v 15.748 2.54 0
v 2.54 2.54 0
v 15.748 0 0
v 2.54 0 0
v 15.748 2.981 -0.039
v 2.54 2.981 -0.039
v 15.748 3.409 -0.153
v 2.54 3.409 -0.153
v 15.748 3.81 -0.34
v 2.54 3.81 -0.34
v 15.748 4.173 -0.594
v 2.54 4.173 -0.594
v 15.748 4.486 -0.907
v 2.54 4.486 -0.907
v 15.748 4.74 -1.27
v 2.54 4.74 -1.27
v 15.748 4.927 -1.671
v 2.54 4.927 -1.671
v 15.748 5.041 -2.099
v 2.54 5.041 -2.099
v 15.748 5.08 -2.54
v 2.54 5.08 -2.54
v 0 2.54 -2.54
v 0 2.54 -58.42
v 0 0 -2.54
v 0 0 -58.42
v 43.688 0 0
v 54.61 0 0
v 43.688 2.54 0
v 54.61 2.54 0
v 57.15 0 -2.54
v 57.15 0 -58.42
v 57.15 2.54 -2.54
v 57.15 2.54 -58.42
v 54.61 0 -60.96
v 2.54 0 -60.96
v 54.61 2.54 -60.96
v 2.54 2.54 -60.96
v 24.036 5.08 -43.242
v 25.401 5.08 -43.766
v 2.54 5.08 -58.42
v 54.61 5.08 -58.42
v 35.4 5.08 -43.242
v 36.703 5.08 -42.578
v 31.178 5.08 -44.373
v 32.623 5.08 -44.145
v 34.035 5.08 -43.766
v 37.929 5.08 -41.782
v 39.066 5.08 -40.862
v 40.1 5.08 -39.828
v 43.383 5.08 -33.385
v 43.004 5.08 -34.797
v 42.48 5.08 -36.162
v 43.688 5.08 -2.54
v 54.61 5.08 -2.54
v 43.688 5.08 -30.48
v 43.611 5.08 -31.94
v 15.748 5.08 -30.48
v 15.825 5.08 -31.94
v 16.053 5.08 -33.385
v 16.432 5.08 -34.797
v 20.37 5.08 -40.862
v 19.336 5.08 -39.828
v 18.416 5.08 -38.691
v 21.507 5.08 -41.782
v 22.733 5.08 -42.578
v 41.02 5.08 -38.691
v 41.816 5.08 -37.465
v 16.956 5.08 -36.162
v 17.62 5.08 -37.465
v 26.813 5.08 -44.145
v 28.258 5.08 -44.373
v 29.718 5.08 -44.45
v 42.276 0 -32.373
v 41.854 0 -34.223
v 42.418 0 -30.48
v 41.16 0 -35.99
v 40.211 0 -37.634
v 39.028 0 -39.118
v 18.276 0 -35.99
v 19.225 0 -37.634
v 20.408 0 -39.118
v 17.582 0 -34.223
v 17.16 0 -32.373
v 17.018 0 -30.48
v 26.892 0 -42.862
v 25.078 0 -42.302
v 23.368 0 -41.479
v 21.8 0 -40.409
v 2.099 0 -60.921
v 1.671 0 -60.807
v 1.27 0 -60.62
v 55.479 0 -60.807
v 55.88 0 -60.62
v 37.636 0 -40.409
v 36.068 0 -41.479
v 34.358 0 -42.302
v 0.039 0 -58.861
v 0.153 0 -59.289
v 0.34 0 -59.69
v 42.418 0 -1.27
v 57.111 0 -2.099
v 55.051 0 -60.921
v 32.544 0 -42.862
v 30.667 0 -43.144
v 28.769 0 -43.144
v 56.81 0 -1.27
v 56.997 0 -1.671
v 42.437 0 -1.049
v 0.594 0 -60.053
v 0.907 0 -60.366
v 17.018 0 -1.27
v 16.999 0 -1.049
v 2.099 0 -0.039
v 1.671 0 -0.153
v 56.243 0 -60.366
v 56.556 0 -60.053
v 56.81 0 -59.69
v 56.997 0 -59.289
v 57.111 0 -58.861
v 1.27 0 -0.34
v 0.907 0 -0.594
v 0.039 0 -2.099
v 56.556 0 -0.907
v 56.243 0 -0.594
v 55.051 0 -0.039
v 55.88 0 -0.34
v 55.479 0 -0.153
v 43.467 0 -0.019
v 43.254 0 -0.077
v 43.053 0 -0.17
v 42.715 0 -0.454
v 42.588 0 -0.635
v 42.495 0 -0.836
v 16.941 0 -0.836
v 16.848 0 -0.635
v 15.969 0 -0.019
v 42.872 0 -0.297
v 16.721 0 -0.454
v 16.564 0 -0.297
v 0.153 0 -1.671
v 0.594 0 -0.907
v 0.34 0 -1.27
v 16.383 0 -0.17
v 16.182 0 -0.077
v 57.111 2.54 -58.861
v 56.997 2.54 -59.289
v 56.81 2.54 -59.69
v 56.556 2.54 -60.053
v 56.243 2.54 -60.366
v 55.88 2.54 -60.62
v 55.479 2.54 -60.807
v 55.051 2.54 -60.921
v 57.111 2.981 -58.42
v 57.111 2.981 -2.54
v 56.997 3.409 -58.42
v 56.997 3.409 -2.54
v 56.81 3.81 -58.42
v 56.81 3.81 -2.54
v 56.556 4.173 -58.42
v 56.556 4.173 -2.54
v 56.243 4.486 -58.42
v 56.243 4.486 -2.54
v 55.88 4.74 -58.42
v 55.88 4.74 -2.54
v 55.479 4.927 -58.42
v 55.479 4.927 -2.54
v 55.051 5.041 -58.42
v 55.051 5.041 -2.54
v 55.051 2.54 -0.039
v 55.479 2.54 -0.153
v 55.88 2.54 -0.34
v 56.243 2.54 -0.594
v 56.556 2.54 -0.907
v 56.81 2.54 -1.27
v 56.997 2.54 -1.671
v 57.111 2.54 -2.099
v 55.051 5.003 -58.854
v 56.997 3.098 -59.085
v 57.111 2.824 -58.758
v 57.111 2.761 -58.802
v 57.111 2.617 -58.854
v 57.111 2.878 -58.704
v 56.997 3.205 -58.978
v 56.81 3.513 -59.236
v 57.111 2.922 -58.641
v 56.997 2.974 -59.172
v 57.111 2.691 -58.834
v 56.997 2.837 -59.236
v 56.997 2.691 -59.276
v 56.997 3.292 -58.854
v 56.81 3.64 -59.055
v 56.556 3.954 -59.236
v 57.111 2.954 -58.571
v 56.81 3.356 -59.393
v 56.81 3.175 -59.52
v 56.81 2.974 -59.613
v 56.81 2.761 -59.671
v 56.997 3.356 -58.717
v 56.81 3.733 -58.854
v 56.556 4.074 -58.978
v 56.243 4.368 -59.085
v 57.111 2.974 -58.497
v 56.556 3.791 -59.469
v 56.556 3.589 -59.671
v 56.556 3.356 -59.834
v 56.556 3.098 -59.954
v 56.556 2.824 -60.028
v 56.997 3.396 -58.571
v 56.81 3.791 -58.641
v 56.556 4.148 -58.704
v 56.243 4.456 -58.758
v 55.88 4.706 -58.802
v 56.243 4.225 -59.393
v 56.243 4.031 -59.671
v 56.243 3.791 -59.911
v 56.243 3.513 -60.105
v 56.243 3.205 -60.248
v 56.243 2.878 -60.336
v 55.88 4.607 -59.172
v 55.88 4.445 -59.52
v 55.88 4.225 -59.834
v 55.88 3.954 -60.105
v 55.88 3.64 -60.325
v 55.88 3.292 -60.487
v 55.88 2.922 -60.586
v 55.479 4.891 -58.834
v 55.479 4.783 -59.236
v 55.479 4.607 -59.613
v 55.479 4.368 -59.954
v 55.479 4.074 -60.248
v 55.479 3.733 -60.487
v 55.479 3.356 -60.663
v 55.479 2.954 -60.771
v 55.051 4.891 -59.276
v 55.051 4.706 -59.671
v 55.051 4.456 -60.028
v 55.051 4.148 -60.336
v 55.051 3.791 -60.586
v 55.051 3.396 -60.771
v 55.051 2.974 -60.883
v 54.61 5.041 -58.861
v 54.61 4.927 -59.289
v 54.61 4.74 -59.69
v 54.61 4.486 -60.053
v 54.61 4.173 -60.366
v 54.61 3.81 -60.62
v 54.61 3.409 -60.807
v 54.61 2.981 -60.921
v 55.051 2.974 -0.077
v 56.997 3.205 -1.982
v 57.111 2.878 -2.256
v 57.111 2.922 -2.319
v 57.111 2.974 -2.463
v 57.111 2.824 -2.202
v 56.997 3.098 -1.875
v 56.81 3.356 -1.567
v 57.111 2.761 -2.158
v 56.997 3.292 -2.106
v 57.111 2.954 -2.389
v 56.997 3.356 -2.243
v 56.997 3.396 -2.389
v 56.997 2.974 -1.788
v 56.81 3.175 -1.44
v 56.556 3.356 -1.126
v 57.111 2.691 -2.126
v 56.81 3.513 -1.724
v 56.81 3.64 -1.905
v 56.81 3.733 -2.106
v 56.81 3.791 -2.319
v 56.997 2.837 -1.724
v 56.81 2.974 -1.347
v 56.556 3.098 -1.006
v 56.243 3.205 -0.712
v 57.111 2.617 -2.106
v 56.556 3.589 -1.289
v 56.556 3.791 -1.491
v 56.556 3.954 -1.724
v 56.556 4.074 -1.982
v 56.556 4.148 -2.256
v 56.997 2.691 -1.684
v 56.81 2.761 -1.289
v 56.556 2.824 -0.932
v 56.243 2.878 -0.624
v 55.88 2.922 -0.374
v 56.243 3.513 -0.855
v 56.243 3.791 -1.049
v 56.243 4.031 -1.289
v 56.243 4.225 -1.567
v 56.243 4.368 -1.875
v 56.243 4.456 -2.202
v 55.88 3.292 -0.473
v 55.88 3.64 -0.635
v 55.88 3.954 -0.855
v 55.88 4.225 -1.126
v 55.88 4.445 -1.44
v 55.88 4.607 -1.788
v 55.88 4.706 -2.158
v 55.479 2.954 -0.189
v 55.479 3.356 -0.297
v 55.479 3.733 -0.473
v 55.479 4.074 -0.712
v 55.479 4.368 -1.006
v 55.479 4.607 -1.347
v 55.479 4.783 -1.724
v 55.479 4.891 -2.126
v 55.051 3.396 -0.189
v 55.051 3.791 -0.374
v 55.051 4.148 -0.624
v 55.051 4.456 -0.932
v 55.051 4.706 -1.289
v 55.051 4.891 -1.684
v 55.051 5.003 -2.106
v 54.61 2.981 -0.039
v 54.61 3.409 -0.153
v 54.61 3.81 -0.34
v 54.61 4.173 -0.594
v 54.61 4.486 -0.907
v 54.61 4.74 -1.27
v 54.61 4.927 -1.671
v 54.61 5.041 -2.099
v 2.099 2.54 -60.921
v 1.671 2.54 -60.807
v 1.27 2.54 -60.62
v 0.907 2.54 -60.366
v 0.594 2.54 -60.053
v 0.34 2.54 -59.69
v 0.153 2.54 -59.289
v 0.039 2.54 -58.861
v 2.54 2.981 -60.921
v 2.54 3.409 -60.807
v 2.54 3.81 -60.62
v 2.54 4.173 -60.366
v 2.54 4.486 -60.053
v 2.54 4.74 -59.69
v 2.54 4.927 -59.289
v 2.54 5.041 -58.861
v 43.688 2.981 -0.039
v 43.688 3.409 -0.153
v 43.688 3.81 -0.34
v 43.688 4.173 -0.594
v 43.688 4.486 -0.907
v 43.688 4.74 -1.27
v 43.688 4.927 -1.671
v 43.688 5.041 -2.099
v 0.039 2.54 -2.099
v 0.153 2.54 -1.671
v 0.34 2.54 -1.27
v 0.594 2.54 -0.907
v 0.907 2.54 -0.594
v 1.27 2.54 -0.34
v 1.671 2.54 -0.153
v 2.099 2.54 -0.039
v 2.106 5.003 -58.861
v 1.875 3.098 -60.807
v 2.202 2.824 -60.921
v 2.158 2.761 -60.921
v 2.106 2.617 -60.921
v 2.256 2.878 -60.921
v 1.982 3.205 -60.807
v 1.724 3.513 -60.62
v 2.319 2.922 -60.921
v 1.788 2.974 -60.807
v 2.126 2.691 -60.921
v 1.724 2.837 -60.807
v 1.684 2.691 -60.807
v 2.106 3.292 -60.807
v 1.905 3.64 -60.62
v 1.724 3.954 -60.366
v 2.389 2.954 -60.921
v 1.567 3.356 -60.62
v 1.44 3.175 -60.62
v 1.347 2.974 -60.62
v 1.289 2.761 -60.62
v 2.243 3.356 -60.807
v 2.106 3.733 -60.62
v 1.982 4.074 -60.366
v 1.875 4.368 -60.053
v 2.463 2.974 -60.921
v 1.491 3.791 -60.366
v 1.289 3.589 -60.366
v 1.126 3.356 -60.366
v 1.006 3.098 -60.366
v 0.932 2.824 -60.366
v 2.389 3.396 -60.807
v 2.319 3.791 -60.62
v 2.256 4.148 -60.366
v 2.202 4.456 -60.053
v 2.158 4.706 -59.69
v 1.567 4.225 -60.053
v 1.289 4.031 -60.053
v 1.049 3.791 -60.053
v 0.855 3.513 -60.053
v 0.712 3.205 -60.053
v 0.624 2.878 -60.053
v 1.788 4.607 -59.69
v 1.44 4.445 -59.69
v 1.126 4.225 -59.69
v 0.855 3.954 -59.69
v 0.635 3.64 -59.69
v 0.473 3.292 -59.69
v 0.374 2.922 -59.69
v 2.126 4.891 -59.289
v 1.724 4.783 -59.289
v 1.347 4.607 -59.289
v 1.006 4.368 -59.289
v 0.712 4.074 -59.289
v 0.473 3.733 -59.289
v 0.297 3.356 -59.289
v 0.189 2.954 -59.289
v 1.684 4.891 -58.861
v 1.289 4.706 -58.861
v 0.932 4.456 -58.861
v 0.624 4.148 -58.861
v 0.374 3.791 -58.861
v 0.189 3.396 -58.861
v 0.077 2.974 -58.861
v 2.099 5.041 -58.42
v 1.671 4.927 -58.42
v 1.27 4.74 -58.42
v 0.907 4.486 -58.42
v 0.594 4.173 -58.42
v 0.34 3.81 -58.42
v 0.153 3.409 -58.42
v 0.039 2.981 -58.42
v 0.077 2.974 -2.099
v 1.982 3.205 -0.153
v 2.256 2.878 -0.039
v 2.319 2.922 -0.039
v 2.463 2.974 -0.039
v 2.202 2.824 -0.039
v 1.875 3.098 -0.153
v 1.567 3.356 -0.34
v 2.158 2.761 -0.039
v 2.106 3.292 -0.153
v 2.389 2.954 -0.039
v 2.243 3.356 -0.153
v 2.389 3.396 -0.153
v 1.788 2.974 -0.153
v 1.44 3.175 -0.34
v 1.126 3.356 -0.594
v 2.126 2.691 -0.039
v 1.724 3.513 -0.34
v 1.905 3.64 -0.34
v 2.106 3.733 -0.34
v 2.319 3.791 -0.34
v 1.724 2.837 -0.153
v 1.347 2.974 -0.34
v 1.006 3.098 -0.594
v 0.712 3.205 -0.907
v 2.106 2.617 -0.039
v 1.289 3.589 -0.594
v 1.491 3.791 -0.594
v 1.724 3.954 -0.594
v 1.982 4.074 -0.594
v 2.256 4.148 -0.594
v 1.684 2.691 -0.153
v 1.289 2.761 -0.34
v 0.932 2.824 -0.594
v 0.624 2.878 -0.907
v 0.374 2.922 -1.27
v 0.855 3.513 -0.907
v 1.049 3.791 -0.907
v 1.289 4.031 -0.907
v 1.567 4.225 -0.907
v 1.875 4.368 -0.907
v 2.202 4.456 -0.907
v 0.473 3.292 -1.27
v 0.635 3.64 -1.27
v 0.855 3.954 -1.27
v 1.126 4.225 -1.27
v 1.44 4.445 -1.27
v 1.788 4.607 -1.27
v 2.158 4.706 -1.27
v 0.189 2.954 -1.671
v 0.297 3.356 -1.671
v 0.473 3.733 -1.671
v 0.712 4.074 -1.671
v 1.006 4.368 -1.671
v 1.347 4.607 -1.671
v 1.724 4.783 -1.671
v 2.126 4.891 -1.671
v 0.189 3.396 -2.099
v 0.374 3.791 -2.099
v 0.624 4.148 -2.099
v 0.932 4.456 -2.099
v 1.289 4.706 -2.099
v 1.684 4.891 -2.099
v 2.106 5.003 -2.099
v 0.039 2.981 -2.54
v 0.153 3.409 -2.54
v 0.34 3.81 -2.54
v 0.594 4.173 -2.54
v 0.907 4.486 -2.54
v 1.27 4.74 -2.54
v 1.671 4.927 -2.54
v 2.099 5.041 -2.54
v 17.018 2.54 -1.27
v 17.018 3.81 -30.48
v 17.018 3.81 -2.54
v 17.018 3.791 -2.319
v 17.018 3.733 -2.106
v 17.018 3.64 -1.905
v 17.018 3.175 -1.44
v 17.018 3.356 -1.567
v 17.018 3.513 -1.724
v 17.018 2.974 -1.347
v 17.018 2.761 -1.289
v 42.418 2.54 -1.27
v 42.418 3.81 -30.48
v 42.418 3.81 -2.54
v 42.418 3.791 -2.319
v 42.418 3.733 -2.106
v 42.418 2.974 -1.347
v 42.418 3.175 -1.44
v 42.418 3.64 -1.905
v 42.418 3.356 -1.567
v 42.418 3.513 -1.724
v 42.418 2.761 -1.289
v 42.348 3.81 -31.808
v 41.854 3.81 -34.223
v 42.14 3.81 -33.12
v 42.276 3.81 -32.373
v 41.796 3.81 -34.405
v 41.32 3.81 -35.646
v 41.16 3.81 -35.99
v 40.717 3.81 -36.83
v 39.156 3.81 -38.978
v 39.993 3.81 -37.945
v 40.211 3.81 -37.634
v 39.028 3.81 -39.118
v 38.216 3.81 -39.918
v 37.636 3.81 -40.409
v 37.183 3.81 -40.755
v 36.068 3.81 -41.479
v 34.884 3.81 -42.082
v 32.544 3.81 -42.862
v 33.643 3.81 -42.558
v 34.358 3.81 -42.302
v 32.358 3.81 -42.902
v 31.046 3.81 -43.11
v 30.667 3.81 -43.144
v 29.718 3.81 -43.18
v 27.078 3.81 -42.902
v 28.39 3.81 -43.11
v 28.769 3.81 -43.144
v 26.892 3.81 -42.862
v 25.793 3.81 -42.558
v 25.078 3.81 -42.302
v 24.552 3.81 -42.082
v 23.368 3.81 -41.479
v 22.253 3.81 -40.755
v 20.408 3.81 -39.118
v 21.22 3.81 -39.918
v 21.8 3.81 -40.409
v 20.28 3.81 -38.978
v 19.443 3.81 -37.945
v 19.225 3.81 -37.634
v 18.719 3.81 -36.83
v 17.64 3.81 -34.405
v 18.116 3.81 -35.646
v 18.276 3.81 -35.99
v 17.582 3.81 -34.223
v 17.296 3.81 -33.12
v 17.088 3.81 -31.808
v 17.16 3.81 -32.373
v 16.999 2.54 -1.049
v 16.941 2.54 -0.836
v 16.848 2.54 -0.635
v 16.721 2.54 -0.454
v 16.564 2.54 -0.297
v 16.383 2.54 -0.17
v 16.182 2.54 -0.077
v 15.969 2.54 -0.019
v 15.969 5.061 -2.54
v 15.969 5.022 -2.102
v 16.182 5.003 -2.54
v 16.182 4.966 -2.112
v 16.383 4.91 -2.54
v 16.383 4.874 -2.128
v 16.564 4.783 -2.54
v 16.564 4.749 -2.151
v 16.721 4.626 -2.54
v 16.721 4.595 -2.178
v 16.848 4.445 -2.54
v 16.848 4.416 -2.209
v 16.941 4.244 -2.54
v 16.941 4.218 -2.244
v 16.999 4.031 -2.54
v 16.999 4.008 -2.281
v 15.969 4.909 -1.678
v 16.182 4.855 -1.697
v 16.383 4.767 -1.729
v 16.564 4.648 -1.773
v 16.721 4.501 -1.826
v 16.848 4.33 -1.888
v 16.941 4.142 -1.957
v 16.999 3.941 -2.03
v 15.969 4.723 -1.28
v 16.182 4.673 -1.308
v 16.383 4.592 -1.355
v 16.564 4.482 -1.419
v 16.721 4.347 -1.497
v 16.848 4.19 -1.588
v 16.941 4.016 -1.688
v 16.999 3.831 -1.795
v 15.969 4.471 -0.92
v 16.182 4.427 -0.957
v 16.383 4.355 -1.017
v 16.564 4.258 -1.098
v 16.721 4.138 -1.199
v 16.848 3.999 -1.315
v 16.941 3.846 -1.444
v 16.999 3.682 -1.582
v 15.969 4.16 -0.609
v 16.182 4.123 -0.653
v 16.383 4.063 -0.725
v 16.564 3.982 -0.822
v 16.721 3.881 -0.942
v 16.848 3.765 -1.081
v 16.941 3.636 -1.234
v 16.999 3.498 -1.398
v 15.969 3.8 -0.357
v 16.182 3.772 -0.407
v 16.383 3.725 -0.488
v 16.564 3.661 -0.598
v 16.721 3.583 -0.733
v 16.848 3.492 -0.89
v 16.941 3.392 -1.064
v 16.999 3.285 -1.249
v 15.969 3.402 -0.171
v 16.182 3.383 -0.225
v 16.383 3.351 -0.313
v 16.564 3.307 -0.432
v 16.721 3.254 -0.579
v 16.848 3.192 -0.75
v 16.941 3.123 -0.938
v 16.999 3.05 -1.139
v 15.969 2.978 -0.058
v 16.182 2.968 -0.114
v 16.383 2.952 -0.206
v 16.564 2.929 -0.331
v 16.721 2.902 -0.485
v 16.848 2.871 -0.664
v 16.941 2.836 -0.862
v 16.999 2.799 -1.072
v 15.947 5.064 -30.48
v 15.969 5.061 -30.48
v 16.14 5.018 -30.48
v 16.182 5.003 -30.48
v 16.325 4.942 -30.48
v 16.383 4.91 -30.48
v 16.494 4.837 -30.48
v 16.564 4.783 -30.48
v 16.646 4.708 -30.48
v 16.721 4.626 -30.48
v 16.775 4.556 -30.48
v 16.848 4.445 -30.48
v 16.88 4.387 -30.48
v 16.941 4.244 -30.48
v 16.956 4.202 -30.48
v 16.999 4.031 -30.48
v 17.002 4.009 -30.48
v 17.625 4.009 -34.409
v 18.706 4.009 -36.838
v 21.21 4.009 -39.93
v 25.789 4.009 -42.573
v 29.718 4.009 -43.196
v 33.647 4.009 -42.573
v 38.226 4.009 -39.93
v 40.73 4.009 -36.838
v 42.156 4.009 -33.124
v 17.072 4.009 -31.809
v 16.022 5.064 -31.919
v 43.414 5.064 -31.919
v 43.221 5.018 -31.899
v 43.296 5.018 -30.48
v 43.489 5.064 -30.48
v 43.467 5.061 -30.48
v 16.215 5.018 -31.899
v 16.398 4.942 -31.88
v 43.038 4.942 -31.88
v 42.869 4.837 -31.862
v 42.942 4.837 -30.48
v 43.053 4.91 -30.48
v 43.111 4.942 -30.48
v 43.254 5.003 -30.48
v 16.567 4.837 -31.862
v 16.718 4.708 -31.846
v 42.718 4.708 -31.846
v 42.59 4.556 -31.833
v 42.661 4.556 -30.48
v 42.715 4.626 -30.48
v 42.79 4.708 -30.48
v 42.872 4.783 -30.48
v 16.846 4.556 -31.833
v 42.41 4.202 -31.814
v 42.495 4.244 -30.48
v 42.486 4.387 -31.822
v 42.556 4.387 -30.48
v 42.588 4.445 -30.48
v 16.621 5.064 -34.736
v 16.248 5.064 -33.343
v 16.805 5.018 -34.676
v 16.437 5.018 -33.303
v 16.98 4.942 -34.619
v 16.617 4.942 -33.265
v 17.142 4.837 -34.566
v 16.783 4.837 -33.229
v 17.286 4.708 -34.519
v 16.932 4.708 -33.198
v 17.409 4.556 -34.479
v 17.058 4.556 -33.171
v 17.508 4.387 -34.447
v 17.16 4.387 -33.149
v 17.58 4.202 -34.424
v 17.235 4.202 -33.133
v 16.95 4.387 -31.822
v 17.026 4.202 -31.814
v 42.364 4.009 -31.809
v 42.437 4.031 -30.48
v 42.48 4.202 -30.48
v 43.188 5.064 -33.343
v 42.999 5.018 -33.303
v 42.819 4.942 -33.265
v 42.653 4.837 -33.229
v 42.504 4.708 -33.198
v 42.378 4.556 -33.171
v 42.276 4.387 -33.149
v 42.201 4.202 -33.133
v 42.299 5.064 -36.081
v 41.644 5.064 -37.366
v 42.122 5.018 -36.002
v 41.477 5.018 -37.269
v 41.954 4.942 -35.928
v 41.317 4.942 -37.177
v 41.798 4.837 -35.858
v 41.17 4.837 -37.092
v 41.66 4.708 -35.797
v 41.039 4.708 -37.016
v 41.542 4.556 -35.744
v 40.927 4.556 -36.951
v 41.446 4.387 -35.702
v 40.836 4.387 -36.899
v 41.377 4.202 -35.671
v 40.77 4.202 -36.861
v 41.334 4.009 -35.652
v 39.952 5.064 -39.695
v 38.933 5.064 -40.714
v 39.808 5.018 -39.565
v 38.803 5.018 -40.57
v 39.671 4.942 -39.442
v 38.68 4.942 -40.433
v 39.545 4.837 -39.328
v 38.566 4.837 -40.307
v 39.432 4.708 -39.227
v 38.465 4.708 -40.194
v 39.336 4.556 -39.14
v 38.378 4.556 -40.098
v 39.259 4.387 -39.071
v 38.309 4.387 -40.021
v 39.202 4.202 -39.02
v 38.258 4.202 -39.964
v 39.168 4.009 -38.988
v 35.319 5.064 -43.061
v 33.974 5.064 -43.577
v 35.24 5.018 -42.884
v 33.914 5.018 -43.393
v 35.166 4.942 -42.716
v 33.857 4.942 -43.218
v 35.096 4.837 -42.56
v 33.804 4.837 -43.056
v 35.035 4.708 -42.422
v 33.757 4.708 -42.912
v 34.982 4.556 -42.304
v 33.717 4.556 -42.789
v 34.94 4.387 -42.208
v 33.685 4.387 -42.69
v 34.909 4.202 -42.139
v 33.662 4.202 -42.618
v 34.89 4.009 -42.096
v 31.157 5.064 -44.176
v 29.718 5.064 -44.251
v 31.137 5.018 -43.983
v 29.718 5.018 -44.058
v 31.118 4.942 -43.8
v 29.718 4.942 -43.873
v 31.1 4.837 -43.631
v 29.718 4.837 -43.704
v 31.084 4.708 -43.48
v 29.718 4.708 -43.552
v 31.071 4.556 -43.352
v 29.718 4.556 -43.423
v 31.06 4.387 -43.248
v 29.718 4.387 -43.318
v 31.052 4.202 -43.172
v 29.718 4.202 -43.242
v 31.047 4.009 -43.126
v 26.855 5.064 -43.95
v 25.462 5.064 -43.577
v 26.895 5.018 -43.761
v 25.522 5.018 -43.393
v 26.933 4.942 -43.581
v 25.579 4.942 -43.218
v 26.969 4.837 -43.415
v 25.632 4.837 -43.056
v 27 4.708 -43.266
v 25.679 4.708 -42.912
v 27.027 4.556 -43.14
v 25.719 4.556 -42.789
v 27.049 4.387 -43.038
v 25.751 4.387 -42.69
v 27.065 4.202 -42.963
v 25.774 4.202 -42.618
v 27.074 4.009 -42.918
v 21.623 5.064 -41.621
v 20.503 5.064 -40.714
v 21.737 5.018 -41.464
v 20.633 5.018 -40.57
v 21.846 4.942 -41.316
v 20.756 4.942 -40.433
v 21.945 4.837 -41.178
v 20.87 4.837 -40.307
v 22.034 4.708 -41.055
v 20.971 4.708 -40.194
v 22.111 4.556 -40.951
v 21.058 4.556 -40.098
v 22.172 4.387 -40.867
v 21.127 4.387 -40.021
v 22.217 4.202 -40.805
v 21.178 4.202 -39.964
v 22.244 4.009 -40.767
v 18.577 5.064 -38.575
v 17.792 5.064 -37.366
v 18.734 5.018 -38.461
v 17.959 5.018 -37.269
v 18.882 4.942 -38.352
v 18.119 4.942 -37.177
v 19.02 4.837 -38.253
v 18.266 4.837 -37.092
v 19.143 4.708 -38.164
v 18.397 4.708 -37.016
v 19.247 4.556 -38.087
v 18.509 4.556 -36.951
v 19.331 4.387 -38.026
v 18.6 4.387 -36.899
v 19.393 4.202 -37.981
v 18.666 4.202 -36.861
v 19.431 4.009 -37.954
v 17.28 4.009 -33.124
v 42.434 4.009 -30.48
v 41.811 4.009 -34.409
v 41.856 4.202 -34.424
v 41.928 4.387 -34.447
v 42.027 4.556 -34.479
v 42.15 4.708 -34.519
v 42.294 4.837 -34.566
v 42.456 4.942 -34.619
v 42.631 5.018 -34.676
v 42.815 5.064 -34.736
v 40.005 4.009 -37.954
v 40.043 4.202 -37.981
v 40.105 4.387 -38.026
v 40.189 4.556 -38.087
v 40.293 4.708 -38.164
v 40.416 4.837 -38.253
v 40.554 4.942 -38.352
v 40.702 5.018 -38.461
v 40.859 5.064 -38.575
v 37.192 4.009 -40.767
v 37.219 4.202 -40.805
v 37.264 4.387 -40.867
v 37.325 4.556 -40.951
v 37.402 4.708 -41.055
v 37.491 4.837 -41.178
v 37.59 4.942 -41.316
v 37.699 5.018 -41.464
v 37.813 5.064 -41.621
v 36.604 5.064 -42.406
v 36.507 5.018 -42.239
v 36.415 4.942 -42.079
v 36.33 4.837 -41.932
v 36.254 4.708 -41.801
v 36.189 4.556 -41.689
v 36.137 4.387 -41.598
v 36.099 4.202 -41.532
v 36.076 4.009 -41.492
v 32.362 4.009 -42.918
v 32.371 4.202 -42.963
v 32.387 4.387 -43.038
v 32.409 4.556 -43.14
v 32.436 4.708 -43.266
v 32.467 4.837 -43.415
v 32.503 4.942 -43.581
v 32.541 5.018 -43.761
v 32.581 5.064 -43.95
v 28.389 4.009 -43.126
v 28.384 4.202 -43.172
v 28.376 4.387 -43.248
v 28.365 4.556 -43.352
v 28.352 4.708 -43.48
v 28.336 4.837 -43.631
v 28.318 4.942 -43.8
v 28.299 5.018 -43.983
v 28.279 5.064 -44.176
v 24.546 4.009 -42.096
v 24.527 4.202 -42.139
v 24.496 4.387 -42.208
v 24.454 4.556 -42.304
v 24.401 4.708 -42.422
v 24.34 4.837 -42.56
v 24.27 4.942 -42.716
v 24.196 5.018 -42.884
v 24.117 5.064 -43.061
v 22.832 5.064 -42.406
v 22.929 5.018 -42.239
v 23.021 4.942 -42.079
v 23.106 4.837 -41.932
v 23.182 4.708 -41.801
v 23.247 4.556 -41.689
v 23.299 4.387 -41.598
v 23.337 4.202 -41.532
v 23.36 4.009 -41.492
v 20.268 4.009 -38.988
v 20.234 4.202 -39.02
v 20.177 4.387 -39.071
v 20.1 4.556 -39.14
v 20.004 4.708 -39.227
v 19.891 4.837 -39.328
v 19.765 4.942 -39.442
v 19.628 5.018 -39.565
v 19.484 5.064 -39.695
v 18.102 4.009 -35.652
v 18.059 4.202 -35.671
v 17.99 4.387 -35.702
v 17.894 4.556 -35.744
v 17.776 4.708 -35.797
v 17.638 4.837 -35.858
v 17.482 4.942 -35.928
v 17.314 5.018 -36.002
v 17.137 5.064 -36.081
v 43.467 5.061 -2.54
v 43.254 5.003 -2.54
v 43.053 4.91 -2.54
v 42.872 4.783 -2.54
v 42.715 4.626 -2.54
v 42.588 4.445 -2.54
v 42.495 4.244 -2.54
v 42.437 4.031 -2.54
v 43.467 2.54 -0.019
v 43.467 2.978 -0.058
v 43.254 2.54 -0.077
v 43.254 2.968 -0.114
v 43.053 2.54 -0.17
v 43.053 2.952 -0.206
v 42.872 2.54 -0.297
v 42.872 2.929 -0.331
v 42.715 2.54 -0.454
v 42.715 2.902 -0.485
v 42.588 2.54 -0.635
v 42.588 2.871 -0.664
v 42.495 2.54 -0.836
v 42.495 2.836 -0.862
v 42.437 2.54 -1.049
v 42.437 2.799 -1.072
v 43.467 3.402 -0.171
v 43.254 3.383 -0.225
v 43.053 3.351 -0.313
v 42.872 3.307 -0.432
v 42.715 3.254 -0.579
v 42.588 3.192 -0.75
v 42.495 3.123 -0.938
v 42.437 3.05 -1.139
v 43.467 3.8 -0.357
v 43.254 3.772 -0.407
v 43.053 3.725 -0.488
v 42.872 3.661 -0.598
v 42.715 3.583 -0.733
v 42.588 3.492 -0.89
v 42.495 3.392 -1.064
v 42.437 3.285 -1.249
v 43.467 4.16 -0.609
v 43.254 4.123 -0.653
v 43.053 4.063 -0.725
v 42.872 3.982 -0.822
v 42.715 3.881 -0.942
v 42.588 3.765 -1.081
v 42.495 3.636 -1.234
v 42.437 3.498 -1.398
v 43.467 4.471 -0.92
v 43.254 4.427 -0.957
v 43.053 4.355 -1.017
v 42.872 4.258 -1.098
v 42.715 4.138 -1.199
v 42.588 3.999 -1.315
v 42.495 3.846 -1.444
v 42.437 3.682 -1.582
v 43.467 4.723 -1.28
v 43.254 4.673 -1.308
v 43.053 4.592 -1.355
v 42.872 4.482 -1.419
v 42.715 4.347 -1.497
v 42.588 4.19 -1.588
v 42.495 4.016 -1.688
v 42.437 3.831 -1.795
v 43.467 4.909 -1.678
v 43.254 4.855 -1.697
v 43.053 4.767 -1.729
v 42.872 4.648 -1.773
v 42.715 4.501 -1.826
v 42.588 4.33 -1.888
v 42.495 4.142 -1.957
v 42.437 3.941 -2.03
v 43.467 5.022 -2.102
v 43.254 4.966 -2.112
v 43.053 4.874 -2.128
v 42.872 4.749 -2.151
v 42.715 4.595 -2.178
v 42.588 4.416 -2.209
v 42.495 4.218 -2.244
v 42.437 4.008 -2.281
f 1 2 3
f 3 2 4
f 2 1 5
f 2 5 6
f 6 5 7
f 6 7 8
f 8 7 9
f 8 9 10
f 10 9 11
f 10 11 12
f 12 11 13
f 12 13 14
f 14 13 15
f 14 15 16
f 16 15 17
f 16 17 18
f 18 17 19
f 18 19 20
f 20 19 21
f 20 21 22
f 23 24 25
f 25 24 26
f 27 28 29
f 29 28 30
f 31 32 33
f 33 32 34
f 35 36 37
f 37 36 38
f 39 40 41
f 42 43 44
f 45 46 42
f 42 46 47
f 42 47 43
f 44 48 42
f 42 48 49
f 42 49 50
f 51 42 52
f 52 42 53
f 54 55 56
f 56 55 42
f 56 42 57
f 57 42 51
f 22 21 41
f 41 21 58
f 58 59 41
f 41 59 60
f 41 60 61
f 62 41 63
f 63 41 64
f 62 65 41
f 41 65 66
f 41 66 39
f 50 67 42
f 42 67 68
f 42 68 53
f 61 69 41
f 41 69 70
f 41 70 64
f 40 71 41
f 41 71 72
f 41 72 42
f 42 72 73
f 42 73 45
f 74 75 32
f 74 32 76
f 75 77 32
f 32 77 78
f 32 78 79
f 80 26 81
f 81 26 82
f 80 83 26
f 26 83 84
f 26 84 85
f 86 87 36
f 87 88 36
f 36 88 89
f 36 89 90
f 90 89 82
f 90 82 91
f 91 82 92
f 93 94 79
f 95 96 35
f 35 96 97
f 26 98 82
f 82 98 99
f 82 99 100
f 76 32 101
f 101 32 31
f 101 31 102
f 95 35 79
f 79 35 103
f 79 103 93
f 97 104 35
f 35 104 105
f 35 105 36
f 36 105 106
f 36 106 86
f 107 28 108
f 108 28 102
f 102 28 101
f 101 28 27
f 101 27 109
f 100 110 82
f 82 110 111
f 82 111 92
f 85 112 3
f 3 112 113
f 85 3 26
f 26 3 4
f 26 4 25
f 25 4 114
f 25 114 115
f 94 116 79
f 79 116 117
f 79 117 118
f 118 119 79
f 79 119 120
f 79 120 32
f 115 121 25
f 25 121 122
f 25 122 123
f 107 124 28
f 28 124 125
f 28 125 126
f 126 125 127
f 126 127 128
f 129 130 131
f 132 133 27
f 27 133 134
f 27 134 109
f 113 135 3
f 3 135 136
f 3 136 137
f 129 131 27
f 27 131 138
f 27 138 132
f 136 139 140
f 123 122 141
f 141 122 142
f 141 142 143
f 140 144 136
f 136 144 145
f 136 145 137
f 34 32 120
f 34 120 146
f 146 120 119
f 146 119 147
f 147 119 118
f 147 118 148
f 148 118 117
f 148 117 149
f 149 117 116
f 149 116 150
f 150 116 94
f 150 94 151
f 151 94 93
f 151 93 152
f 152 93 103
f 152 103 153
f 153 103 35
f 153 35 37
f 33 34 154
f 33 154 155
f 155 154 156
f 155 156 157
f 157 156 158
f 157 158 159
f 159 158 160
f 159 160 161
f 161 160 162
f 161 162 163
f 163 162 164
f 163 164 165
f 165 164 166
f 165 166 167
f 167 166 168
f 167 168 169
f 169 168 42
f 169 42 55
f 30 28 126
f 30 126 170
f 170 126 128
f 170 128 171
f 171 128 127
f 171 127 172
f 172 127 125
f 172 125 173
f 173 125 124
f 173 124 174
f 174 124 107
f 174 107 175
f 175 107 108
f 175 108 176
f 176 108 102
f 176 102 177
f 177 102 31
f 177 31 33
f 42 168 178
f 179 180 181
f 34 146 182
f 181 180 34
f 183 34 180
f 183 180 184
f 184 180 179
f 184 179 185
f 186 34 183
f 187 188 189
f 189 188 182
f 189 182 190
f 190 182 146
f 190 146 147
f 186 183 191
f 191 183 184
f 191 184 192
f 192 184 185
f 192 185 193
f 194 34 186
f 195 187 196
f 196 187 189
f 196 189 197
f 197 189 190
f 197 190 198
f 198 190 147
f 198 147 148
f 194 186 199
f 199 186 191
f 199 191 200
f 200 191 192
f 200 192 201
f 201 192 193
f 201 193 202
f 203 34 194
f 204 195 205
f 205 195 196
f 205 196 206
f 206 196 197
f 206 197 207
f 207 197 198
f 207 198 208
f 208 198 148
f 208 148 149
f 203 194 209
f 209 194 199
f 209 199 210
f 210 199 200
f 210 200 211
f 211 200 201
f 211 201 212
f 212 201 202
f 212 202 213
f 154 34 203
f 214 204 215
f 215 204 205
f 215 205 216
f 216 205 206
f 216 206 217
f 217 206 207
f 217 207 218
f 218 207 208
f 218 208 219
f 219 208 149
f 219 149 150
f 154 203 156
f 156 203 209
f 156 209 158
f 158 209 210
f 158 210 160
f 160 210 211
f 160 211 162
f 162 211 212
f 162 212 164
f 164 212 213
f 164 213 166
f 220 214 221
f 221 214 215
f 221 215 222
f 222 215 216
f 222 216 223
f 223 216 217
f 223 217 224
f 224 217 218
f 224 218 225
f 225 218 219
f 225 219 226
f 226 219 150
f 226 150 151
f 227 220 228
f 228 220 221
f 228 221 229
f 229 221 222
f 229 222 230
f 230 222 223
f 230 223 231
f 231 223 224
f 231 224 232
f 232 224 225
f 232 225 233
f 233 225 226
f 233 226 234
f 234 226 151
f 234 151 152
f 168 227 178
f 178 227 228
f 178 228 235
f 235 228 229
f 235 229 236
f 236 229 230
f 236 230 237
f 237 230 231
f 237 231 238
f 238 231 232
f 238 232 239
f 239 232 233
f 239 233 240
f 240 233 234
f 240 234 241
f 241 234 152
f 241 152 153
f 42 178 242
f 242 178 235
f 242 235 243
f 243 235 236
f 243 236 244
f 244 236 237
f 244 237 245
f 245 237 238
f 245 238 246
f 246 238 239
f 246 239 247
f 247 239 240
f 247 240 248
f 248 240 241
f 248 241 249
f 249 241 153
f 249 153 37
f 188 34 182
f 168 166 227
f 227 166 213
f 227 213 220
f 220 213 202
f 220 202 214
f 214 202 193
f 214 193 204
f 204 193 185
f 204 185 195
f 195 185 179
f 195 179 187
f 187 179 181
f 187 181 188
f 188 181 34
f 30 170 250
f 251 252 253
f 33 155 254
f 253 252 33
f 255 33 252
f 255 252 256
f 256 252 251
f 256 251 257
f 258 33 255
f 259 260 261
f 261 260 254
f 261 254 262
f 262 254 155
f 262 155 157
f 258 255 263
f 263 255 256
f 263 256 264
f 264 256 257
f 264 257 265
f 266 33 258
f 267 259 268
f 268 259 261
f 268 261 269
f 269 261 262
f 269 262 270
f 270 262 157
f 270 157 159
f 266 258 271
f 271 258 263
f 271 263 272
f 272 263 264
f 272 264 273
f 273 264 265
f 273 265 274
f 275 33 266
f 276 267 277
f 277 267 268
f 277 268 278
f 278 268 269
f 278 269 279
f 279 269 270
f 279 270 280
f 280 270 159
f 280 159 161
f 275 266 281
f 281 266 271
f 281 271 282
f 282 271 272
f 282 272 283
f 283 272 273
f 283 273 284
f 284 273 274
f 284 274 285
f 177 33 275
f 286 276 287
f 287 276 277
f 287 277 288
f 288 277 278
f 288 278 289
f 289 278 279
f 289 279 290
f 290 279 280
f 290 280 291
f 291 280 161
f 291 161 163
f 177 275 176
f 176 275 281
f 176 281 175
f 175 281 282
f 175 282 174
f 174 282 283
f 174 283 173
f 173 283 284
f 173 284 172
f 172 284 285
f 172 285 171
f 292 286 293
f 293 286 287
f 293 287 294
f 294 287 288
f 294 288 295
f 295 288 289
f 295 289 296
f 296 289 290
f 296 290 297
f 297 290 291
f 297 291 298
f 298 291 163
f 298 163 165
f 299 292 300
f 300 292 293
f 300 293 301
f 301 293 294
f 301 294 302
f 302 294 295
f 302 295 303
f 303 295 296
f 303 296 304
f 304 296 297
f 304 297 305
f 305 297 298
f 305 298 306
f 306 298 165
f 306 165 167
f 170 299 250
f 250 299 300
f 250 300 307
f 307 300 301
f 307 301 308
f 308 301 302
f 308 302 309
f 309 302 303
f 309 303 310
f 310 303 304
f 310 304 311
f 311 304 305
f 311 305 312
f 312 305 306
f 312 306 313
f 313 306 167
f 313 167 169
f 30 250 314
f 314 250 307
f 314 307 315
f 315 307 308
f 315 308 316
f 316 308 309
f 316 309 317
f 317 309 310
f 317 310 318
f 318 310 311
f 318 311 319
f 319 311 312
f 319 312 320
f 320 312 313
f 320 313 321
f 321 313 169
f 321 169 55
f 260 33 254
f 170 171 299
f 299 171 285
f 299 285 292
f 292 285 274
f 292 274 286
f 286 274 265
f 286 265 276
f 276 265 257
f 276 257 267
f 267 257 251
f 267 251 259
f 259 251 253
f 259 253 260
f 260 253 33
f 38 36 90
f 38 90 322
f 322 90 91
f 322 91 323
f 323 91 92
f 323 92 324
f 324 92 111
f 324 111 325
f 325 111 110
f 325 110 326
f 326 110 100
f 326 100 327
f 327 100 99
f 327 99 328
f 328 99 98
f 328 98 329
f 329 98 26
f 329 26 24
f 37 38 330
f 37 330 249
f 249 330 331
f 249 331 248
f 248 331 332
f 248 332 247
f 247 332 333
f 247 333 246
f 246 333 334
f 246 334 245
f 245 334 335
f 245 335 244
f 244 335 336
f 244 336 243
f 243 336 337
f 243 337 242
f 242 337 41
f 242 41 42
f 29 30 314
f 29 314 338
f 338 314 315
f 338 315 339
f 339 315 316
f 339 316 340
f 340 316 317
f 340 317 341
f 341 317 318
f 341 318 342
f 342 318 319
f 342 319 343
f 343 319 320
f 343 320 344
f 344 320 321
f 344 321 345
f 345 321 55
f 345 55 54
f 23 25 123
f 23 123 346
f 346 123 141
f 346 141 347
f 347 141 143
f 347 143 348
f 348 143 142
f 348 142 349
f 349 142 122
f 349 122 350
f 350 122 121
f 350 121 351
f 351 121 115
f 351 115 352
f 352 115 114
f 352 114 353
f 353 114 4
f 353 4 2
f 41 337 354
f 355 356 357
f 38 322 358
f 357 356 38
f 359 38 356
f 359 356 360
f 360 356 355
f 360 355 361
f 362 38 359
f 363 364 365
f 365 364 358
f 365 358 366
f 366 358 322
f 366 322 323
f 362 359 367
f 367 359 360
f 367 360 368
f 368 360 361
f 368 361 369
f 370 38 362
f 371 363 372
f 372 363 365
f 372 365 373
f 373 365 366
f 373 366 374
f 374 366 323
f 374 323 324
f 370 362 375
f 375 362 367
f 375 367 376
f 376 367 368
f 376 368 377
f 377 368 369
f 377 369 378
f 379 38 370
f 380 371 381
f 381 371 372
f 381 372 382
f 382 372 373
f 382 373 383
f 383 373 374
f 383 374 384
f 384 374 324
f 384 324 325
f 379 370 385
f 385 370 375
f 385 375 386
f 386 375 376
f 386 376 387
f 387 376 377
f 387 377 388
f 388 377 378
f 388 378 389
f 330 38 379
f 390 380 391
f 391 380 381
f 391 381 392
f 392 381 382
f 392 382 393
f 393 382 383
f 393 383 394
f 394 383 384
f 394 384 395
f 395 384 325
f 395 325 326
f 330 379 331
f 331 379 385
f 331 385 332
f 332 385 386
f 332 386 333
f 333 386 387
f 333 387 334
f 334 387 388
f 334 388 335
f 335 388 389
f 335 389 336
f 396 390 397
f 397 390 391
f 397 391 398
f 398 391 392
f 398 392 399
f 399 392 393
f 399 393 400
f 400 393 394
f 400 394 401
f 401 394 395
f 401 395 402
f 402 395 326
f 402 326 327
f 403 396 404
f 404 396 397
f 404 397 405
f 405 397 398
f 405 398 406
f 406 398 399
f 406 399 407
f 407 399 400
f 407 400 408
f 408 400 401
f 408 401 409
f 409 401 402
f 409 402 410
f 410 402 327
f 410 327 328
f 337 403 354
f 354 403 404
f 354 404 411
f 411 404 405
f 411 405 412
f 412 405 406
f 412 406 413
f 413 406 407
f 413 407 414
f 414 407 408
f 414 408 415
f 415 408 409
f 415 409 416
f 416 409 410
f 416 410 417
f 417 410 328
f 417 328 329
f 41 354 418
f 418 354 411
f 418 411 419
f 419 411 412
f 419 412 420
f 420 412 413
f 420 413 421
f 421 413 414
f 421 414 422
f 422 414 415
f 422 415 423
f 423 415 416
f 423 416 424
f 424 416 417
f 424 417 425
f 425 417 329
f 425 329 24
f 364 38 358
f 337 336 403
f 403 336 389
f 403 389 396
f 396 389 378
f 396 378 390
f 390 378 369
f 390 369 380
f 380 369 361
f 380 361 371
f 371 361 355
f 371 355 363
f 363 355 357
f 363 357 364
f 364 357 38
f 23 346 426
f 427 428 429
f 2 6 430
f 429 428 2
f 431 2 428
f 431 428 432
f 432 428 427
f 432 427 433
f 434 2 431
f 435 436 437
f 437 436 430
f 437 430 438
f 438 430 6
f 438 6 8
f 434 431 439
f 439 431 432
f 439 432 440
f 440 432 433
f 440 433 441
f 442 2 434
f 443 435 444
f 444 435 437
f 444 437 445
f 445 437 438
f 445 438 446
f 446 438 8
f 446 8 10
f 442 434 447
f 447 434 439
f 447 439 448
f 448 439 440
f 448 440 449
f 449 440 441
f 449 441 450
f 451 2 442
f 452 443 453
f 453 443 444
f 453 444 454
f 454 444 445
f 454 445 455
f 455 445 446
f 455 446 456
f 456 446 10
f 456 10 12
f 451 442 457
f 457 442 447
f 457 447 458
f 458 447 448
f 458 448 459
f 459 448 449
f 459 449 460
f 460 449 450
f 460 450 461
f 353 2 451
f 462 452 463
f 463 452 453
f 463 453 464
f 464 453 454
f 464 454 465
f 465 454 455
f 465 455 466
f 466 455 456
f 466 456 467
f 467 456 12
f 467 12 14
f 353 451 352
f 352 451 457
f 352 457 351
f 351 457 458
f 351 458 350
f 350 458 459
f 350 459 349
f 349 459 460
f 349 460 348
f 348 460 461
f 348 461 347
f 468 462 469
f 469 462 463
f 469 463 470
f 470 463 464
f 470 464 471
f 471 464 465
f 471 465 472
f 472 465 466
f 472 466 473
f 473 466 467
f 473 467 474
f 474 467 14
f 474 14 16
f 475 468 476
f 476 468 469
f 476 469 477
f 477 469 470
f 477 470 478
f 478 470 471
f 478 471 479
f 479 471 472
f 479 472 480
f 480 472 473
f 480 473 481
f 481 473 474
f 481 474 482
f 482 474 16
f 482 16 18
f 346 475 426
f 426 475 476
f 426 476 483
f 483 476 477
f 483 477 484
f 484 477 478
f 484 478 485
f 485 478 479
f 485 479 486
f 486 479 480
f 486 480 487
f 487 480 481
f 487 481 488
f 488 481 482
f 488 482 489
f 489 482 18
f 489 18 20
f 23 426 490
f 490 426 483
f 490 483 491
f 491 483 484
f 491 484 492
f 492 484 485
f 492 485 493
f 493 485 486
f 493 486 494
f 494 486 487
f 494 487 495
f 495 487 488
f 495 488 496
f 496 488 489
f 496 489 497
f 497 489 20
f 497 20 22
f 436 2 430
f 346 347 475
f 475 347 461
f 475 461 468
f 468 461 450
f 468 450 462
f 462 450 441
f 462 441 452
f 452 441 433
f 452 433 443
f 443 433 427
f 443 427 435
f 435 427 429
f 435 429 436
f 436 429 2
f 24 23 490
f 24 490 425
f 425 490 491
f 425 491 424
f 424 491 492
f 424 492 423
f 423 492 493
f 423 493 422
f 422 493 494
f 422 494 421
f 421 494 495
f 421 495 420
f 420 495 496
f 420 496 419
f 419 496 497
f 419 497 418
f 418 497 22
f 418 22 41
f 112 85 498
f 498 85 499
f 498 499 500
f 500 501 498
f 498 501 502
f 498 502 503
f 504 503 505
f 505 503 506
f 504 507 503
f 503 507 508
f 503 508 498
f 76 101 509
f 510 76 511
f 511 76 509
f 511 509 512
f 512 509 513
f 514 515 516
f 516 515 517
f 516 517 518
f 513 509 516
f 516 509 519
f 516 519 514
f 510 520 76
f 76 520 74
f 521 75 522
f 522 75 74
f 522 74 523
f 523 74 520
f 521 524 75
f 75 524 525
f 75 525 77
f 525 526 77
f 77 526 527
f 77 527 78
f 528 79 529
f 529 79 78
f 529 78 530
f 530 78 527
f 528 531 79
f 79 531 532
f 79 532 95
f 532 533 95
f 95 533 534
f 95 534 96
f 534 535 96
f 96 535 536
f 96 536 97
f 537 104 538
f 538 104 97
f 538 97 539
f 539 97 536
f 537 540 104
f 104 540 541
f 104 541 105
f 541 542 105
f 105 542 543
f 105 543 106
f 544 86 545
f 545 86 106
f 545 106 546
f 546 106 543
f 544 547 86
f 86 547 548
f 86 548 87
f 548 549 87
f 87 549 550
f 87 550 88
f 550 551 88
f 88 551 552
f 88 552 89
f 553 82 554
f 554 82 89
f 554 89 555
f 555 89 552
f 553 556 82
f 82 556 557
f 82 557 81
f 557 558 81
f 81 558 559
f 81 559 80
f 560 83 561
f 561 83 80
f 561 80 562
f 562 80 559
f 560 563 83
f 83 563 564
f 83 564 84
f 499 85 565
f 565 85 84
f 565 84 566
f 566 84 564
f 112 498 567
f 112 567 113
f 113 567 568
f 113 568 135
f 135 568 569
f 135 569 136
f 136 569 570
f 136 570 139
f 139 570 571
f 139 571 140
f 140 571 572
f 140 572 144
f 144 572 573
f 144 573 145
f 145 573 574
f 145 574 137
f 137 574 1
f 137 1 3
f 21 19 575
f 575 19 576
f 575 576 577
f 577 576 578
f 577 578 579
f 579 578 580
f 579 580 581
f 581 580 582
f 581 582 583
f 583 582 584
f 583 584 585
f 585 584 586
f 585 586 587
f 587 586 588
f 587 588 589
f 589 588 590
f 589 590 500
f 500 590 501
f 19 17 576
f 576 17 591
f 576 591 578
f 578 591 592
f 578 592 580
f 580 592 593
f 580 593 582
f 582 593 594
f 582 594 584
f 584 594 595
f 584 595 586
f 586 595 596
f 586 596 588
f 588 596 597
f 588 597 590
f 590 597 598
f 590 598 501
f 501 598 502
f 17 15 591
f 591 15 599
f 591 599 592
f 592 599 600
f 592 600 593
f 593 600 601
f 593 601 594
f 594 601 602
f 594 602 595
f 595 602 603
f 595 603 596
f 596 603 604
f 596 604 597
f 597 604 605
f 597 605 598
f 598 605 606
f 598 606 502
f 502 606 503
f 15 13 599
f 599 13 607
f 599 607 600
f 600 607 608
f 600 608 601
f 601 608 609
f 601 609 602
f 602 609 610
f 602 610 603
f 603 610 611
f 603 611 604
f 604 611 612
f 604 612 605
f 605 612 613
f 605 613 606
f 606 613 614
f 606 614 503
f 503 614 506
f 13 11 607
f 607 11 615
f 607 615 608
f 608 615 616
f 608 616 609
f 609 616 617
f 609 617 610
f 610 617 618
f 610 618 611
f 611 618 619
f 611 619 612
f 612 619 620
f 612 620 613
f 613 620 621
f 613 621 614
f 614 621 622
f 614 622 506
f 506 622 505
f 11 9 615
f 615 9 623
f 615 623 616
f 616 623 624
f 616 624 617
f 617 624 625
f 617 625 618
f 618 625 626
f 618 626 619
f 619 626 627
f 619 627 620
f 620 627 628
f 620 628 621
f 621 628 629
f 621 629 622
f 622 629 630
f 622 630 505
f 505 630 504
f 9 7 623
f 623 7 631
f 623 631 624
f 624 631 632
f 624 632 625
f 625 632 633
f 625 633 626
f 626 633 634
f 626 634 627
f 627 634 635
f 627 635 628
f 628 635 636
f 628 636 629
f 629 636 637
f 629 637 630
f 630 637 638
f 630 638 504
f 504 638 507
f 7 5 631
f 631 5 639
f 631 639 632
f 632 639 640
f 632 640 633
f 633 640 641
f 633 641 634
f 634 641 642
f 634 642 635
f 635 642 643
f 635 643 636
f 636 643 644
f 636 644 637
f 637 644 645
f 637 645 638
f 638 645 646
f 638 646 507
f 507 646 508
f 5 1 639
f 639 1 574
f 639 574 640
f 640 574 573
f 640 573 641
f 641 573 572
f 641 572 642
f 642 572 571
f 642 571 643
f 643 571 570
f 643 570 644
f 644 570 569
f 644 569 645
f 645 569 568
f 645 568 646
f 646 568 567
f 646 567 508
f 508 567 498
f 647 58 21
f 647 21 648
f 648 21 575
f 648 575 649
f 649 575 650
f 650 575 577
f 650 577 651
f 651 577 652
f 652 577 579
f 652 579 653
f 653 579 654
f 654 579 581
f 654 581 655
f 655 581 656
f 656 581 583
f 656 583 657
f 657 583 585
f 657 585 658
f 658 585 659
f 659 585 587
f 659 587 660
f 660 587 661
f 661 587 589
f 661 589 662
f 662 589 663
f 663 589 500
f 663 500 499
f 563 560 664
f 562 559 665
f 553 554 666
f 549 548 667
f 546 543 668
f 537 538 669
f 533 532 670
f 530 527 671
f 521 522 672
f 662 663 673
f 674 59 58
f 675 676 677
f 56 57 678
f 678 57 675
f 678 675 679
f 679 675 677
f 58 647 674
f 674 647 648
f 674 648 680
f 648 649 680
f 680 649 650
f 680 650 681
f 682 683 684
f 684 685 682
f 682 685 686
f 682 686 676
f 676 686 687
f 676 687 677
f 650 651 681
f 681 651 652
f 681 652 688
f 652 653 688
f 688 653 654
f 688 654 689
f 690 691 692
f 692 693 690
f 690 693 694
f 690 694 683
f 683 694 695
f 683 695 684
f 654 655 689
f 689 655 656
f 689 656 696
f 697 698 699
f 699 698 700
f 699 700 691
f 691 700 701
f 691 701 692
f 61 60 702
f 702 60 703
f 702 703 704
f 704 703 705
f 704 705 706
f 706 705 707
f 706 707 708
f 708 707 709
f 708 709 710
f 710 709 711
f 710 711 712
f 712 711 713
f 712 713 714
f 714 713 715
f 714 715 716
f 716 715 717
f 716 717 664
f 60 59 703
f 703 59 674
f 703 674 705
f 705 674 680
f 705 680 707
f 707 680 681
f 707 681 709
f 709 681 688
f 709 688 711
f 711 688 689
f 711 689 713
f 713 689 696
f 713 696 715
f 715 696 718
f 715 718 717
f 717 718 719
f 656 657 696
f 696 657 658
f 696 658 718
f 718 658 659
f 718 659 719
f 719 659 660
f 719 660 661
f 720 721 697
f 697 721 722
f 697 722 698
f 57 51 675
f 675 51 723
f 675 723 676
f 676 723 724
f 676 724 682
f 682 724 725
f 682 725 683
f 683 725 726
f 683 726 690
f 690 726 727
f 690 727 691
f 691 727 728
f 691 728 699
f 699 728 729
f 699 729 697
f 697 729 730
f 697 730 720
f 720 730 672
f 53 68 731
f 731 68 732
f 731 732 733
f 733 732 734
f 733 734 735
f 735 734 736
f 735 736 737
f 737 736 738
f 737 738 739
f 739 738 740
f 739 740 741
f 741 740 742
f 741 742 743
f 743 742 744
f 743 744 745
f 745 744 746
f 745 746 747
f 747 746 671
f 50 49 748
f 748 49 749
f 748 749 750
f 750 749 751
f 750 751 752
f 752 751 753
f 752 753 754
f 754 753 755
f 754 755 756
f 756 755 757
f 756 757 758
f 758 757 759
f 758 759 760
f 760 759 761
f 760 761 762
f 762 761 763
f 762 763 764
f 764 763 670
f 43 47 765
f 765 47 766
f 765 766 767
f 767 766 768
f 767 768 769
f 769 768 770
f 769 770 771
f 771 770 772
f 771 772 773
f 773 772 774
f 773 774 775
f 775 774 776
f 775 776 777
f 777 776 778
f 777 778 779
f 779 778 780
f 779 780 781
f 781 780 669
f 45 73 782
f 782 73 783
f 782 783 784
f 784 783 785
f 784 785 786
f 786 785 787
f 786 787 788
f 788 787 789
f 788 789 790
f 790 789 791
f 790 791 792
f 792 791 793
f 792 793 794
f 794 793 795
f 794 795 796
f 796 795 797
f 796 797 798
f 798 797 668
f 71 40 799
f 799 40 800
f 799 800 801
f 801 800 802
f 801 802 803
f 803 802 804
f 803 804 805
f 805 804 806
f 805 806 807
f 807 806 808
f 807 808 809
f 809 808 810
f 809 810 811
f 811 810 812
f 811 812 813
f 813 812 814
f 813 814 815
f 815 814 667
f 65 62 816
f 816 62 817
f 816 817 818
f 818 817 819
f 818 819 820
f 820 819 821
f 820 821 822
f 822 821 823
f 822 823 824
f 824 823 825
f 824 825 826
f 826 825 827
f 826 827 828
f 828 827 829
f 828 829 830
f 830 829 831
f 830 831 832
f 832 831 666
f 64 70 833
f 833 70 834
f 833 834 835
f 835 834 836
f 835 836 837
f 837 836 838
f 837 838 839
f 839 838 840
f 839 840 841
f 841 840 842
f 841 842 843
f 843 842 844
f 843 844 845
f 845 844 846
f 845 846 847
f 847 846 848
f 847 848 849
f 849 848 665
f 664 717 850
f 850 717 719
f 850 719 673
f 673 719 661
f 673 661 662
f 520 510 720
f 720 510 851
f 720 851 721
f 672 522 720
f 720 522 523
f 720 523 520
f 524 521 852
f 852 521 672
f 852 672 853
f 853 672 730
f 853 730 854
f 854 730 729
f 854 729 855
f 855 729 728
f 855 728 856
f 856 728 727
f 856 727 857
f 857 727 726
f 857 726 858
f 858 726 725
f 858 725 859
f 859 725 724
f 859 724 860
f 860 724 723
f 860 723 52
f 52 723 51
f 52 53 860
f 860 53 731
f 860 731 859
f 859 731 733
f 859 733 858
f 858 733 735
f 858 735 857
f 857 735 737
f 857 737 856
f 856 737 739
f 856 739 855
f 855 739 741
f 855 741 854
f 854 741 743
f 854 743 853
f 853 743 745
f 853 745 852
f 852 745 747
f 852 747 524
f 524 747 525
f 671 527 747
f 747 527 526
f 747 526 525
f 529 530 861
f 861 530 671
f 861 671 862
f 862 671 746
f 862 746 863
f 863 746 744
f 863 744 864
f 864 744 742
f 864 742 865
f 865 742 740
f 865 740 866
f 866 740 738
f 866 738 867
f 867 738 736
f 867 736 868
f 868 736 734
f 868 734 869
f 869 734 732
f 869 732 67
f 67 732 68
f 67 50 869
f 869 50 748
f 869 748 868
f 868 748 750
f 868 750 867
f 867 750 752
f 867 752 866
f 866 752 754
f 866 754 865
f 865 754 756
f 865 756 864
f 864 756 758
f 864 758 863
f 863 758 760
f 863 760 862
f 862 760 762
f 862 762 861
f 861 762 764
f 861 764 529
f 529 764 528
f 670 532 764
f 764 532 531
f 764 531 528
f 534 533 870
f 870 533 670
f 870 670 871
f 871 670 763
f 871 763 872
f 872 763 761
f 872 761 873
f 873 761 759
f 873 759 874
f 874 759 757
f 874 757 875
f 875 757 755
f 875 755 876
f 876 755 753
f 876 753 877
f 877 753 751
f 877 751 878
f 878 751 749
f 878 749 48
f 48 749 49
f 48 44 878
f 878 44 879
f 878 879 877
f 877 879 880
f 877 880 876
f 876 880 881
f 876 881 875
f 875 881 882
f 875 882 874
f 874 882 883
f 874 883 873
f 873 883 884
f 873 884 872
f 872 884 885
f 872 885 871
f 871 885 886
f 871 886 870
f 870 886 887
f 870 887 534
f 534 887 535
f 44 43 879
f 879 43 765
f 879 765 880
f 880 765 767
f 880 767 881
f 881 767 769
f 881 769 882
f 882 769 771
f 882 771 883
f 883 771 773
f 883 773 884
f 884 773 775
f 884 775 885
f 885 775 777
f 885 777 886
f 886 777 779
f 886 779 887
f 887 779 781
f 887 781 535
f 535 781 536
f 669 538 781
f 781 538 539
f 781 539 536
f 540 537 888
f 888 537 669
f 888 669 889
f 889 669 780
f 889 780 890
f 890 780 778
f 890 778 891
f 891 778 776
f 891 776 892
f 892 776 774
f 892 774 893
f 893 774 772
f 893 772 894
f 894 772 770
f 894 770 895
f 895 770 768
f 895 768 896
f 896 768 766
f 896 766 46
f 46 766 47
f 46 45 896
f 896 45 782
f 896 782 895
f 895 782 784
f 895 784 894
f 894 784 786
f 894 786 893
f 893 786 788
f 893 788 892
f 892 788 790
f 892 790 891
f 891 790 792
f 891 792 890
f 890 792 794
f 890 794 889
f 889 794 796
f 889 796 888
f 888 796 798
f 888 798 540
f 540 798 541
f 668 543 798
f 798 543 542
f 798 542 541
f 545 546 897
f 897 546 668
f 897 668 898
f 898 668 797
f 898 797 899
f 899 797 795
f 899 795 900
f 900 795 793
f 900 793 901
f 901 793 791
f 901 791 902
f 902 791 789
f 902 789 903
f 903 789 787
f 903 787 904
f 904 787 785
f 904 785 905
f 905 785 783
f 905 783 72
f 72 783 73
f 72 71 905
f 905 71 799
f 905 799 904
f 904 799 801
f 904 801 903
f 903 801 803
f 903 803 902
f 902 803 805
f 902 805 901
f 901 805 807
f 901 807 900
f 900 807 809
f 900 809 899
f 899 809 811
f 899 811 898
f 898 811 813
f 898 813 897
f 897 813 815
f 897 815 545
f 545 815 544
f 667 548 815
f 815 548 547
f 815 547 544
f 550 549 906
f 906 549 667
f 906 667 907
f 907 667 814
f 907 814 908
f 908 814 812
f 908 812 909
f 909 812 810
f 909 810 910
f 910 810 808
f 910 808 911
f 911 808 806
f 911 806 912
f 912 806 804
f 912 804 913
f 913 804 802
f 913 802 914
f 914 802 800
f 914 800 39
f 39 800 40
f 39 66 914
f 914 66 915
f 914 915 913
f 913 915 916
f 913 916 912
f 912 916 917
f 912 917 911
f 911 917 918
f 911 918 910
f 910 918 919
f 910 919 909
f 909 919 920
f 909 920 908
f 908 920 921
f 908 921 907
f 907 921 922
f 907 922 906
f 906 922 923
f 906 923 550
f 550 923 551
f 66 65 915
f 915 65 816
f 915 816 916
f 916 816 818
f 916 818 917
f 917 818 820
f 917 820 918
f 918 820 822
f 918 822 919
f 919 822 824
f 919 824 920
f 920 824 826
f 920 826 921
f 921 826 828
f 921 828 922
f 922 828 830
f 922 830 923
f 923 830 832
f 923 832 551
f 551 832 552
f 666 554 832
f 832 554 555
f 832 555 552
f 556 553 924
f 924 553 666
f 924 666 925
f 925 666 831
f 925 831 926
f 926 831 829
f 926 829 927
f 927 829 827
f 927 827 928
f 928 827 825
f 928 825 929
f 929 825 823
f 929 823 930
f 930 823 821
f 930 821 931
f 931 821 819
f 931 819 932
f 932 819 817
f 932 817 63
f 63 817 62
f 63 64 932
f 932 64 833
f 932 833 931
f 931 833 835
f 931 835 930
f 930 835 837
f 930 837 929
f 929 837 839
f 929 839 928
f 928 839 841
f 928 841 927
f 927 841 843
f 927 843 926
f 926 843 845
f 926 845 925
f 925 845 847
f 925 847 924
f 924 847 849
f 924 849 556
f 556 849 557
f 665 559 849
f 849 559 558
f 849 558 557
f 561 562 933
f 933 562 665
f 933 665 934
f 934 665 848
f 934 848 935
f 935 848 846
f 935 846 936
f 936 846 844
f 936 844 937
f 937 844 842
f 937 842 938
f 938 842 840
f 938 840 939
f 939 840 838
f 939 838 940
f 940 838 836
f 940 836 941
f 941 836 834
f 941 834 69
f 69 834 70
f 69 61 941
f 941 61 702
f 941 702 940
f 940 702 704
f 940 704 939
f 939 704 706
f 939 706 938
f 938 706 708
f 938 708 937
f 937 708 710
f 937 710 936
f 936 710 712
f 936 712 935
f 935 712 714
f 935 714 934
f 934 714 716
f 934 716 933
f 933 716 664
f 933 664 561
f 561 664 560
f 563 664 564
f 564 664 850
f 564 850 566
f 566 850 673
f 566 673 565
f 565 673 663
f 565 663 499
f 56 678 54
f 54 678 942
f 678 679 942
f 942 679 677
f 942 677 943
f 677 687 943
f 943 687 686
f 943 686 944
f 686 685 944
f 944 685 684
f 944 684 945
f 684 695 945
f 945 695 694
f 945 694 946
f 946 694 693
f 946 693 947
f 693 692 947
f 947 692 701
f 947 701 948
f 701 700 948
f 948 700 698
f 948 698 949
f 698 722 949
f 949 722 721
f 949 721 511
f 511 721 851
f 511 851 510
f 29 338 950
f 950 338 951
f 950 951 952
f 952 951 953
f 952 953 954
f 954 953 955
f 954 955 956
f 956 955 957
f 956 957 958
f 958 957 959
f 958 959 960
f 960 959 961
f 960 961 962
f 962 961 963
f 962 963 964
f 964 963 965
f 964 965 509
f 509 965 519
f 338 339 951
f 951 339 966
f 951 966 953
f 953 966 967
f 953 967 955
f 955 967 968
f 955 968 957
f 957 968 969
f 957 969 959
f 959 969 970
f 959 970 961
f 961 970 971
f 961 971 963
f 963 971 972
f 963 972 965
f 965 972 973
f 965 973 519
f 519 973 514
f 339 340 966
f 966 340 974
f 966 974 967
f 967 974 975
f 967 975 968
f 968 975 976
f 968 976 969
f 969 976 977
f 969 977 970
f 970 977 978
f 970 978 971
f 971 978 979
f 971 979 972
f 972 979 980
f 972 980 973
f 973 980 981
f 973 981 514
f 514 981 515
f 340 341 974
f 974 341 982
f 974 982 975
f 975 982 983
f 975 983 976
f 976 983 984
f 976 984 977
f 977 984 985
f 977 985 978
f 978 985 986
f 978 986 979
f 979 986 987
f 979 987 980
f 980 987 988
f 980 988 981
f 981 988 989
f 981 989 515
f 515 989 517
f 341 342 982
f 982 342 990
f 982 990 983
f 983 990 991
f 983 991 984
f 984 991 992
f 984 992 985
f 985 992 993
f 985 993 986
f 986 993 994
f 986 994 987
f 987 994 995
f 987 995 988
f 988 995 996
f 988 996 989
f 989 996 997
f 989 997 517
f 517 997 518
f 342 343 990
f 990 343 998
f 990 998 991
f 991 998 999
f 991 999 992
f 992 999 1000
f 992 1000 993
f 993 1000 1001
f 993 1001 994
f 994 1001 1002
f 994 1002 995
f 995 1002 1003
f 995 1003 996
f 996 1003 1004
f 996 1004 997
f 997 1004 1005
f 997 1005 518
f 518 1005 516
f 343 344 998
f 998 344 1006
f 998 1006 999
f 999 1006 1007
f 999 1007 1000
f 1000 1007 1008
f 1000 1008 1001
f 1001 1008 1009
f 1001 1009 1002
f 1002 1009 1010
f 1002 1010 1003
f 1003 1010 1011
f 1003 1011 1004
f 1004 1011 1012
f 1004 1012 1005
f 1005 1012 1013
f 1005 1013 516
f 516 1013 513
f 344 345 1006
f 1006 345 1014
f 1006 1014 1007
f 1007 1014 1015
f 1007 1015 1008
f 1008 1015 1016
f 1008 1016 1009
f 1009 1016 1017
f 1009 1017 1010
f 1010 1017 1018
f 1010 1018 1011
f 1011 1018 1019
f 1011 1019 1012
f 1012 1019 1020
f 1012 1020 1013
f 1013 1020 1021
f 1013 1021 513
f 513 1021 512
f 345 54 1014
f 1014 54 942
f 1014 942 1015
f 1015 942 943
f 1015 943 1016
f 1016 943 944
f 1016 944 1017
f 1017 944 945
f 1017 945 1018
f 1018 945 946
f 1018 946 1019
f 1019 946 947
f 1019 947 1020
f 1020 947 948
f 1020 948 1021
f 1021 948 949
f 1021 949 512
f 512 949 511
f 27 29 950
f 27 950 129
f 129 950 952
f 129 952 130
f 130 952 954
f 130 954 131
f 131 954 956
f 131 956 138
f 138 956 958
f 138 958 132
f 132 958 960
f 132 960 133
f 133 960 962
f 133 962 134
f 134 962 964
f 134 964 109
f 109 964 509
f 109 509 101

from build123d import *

# Parameters (mm, degrees)
SKETCH1_W           = 57.15
SKETCH1_H           = 60.96
BOSS_EXTRUDE1_DEPTH = 5.08
FILLET1_R           = 2.54
CUT_EXTRUDE1_REACH  = 85.714
FILLET2_R           = 1.27


with BuildPart() as part:
    # Sketch1 → Boss-Extrude1 (new body)
    with BuildSketch(Plane(origin=(0, 0, 0), x_dir=(1, 0, 0), z_dir=(0, 1, 0))):
        with Locations((28.575, 30.48)):
            Rectangle(SKETCH1_W, SKETCH1_H)
    extrude(amount=BOSS_EXTRUDE1_DEPTH)

    # Fillet1
    fillet1_edges = [part.edges().sort_by_distance(p)[0] for p in [
        (57.15, 5.08, -30.48),
        (28.575, 5.08, -60.96),
        (0, 5.08, -30.48),
        (0, 2.54, -60.96),
        (57.15, 2.54, -60.96),
        (57.15, 2.54, 0),
        (0, 2.54, 0),
        (28.575, 5.08, 0),
    ]]
    fillet(fillet1_edges, radius=FILLET1_R)

    # Cut-Extrude1: up to this face of the body (flat: up to its plane)
    cut_extrude1_end = Plane(part.part.faces().sort_by_distance((28.575, 0, -30.48))[0])
    # Sketch2 → Cut-Extrude1 (cut, up to the picked face)
    with BuildSketch(Plane(origin=(0, 5.08, 0), x_dir=(1, 0, 0), z_dir=(0, 1, 0)), mode=Mode.PRIVATE) as cut_extrude1_sk1:
        with BuildLine():
            Line((17.018, 30.48), (17.018, 0))
            Line((17.018, 0), (42.418, 0))
            Line((42.418, 0), (42.418, 30.48))
            ThreePointArc((42.418, 30.48), (29.718, 43.18), (17.018, 30.48))
        make_face()
    cut_extrude1_tool1 = split(extrude(cut_extrude1_sk1.sketch, amount=-CUT_EXTRUDE1_REACH, mode=Mode.PRIVATE), bisect_by=cut_extrude1_end, keep=Keep.BOTH, mode=Mode.PRIVATE)
    add(cut_extrude1_tool1.solids().sort_by(Axis((29.718, 5.08, -20.326586), (0, -1, 0)))[0], mode=Mode.SUBTRACT)

    # Fillet2
    fillet2_edges = [part.edges().sort_by_distance(p)[0] for p in [
        (42.418, 4.336051224, -0.743948776),
        (17.018, 4.336051224, -0.743948776),
        (42.418, 1.27, 0),
        (42.418, 5.08, -16.51),
        (29.718, 5.08, -43.18),
        (17.018, 5.08, -16.51),
        (17.018, 1.27, 0),
    ]]
    fillet(fillet2_edges, radius=FILLET2_R)


solid = part.part
